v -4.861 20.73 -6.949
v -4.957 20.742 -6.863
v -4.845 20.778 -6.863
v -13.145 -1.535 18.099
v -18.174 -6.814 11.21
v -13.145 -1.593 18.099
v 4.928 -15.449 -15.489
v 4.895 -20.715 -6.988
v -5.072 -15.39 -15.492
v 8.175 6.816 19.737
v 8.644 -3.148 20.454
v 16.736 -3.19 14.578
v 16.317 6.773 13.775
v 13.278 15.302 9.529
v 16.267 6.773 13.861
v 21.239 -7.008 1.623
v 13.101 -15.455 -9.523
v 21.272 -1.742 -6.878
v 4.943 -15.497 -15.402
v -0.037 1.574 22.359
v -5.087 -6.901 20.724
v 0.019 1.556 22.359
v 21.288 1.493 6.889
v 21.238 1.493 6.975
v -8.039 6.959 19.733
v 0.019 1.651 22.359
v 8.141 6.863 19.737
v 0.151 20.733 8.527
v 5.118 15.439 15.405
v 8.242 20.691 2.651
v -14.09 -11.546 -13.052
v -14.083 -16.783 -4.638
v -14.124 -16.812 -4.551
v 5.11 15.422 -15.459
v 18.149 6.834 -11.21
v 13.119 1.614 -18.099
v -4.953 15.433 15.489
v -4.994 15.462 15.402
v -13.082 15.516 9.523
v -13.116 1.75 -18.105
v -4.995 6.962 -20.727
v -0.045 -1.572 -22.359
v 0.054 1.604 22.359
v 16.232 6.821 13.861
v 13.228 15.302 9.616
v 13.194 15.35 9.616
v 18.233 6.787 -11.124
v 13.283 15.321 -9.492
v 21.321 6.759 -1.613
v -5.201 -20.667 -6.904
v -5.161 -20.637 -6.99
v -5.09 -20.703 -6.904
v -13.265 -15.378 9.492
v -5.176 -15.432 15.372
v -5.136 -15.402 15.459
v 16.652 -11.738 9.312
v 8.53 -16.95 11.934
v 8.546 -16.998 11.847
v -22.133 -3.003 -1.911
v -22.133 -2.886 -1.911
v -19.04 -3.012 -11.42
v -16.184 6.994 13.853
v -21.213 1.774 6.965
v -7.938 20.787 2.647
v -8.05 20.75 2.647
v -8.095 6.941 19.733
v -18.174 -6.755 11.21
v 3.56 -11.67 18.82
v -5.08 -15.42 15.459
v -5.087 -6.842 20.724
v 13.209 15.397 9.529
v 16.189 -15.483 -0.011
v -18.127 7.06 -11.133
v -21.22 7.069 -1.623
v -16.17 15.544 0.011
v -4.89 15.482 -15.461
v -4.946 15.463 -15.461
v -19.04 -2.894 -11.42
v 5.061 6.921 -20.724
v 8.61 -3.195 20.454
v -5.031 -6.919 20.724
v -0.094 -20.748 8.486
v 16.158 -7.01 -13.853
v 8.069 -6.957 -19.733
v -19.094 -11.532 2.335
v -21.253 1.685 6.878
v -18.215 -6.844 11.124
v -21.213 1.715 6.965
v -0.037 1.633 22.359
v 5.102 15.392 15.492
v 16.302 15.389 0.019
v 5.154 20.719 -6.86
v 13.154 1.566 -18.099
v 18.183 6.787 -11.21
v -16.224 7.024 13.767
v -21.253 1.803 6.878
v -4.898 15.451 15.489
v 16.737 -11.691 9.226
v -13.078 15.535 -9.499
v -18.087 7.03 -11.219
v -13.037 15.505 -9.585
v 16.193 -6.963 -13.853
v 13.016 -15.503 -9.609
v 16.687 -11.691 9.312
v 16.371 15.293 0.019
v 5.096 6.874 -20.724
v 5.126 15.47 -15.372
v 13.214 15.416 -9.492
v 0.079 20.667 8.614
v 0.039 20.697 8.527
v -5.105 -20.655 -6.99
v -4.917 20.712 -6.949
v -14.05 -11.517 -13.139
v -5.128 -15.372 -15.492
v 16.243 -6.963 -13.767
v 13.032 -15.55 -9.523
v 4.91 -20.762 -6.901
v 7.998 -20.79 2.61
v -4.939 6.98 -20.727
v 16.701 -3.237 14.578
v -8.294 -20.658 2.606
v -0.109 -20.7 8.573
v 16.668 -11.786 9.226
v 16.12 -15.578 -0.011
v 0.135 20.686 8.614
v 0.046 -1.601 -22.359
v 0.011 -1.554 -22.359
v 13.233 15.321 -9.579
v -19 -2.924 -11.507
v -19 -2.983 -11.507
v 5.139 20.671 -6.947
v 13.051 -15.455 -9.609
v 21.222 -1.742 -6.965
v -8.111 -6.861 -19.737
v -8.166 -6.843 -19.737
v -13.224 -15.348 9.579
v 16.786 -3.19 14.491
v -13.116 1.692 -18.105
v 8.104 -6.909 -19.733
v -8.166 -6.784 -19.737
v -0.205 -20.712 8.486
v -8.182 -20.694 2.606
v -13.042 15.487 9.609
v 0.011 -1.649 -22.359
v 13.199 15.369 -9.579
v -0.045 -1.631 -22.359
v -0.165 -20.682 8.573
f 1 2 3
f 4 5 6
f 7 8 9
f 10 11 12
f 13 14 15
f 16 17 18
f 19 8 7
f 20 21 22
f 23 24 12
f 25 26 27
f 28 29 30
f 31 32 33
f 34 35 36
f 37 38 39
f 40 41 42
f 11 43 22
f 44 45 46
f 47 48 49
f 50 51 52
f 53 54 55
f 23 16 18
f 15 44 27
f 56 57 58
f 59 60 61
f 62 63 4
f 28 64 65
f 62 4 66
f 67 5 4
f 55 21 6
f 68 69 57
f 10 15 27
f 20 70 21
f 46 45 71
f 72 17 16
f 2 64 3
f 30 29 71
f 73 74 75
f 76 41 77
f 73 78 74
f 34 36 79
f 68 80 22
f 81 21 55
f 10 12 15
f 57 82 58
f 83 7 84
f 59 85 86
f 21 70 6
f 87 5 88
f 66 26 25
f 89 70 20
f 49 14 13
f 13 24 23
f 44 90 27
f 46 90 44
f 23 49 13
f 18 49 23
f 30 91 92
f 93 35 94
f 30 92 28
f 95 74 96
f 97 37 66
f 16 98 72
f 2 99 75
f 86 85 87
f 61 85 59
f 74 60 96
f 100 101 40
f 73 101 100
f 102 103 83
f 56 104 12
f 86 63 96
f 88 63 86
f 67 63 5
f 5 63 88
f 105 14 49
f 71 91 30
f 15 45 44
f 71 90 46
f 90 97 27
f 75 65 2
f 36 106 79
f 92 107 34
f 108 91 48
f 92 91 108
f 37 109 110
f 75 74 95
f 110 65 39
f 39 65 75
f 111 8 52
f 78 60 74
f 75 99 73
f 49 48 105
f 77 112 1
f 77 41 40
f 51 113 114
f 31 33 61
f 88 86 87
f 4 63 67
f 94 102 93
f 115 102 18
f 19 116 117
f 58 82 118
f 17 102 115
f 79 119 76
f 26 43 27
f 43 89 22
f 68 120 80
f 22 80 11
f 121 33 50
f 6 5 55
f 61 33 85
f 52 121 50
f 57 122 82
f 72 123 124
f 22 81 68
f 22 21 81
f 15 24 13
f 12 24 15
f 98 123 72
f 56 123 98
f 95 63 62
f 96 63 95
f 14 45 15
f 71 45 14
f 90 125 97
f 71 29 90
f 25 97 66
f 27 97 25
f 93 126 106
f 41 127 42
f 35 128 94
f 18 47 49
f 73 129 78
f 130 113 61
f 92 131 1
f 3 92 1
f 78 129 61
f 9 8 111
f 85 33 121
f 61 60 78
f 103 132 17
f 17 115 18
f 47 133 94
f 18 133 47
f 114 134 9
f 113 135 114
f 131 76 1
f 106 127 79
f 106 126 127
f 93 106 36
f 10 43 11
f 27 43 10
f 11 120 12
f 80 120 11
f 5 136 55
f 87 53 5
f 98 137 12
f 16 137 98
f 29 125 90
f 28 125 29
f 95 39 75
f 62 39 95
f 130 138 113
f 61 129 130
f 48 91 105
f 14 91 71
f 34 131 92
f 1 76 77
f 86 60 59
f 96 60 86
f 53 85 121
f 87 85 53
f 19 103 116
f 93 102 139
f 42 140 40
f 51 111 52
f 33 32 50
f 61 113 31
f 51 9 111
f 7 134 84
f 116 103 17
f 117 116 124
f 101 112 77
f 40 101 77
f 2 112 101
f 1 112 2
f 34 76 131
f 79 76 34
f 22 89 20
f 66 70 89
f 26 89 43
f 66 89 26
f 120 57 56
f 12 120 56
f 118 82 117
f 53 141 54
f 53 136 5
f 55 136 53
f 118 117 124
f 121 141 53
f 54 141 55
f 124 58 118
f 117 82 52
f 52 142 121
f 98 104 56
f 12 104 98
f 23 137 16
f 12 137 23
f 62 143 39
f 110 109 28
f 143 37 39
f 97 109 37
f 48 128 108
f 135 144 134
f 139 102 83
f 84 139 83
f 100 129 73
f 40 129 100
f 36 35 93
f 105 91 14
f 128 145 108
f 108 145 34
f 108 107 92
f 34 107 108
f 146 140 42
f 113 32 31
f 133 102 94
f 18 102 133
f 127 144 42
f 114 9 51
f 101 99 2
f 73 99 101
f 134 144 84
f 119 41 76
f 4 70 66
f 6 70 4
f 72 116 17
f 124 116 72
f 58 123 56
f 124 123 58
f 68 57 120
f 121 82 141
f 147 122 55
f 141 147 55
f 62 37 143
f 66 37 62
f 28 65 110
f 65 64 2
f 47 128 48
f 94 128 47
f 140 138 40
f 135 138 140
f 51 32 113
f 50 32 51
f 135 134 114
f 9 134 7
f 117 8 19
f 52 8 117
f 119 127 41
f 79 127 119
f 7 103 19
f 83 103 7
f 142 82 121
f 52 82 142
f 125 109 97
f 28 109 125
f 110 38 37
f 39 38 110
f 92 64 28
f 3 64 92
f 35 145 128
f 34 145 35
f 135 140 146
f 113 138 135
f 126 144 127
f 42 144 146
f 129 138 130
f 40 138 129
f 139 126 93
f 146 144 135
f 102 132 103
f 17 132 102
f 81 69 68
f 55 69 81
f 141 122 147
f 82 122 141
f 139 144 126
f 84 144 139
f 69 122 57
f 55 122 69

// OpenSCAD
// Auto-generated OpenSCAD file

    inner_points = 10*[[-1.3104395664096138, -0.15639165556592607, 1.8012204607133442], [2.1171837602471193, -0.17420359653421366, -0.6878261389542333], [-1.813366541926435, -0.6784734505750465, 1.1123844449464875], [1.6142567847302982, -0.696285391543334, -1.3766621547210902], [-1.614310140962071, 0.6964934004258805, 1.3766621547210902], [1.8133131856946623, 0.678681459457593, -1.1123844449464875], [-2.1172371164788926, 0.17441160541676018, 0.6878261389542333], [1.310386210177841, 0.1565996644484726, -1.8012204607133442], [0.8594233074163656, -0.31477478394555153, 2.036729007131888], [1.668575413771322, -0.318979612825281, 1.4491448104456341], [-0.01245801396871189, -2.065274015710926, 0.848603012757371], [0.7966940923862442, -2.069478844590655, 0.2610188160711172], [0.01197252401493869, 2.0637974417993705, 0.8526977150509645], [0.8211246303698948, 2.059592612919641, 0.26511351836471064], [-1.2996744241348386, 1.5476050584640813, -0.9498548318379741], [-0.4905223177798824, 1.5434002295843519, -1.5374390285242279], [0.8125489839866779, 0.6815508776221069, 1.9650493454085152], [1.621701090341634, 0.6773460487423775, 1.3774651487222616], [-1.901334281126665, -1.1473180605990139, 0.23349514104554972], [-0.5087317656659937, -1.534227924731367, -1.5404910394162612], [0.5086784094342206, 1.5344359336139135, 1.5404910394162612], [1.3178305157891768, 1.5302311047341841, 0.9529068427300073], [-2.2052048556791224, -0.2944330046072073, -0.19106316494670447], [-0.8126023402184509, -0.6813428687395604, -1.9650493454085152], [-0.8054566316651747, 0.6911245534638584, 1.9646478484079297], [2.1220831911956264, 0.6759113396601206, -0.1612517464552398], [-1.4009521802726725, -1.1487527696812705, -1.3052217541319513], [0.8054032754334016, -0.6909165445813119, -1.9646478484079297], [-0.5095135029129342, -1.5372753636343293, 1.5371908897314848], [1.6088742135929104, -1.5482837485583376, -0.001124508445430994], [-1.6089275698246832, 1.548491757440884, 0.001124508445430994], [0.5094601466811611, 1.5374833725168757, -1.5371908897314848], [0.8514958616161489, -1.6902896450519322, 1.184713742463189], [-0.5120583775757634, -2.0607918677257064, -0.6903620212128735], [-0.4876278395921126, 2.0682795897845896, -0.6862673189192798], [-1.3076018699350553, 0.17209019735770018, -1.801870096506673], [-0.5046140719644278, -0.687160427439995, 2.063765282230478], [2.1138571483373494, -0.7007675395285534, 0.16230287924915437], [-1.3183670122098305, -1.531906516672307, 0.9492051960446453], [1.3001042080919467, -1.5455136287608653, -0.9522572069366785], [-1.3001575643237195, 1.5457216376434117, 0.9522572069366785], [1.3183136559780577, 1.5321145255548534, -0.9492051960446453], [-2.1139105045691227, 0.7009755484110999, -0.16230287924915437], [0.5045607157326547, 0.6873684363225414, -2.063765282230478], [0.3544403726719265, -1.1622909929753358, 1.873301619437303], [1.6636759828228154, -1.1690945490196152, 0.922570417946641], [-0.8213115232656084, -2.059905168748904, 0.2606173190705316], [0.4879240868852805, -2.066708724793183, -0.6901138824201304], [-0.7968809852819578, 2.0691662887613926, 0.2647120213641251], [0.512354624868931, 2.0623627327171135, -0.6860191801265367], [-1.8046573588792778, 0.7000888494342967, -1.1132822195325593], [-0.4954217487283891, 0.6932852933900178, -2.0640134210232213], [0.00036886278001156155, 0.1603557815897894, 2.2271926699250635], [2.118756579285856, 0.14934739666578092, 0.6888772717481477], [-1.4042787921824422, -1.6753167126756103, -0.455092735928564], [0.4912506987950502, -1.5401447817988432, -1.540242900623518], [-0.4913040550268231, 1.5403527906813896, 1.540242900623518], [1.6270836614790216, 1.5293444057573813, 0.0019275024466022805], [-1.8959517099892769, -0.29531970358401, -1.1420425052301095], [-0.0004222190117845245, -0.16014777270724287, -2.2271926699250635]];

    outer_points = 10*[[-1.608902406578448, 1.5483825910198363, 0.003517873301490282], [1.805289329346114, -0.7010179363837667, 1.1115629841430903], [-2.1139804776773468, 0.7010179363837667, -0.16040065575642376], [1.3002112582472154, -1.5483825910198363, 0.9476444550851761], [-1.3002112582472154, 1.5483825910198363, -0.9476444550851761], [2.1139804776773468, -0.7010179363837667, 0.16040065575642376], [-1.805289329346114, 0.7010179363837667, -1.1115629841430903], [1.608902406578448, -1.5483825910198363, -0.003517873301490282], [0.010456741573218409, 1.681299862030699, 1.469418050791201], [0.8164380794694259, 1.1502884289395703, 1.7309920190861077], [-1.3093480486893396, -0.15817661077247036, 1.801847891665038], [-0.503366710793132, -0.6891880438635992, 2.063421859959945], [0.8713514032813371, 1.681299862030699, -1.183235176723117], [1.6773327411775445, 1.1502884289395703, -0.9216612084282103], [-0.0017113603057666849, -0.15817661077247036, -2.227340389017859], [0.8042699775904408, -0.6891880438635992, -1.9657664207229522], [0.5124362784459833, 2.060252855930076, 0.6919791959764293], [1.3184176163421908, 1.5292414228389473, 0.9535531642713361], [-2.205290226019561, -0.2943635836592561, -0.19003441040417474], [-0.821127426777216, -2.060252855930076, 0.25918313241023716], [0.821127426777216, 2.060252855930076, -0.25918313241023716], [1.6271087646734235, 1.5292414228389473, 0.0023908358846695954], [-1.8965990776883281, -0.2943635836592561, -1.1411967387908413], [-0.5124362784459833, -2.060252855930076, -0.6919791959764293], [-0.7968781588487197, 2.069823440020521, -0.2586196137018268], [2.1191897159578725, 0.14860602668202572, 0.6877638941613333], [-1.4045181264038793, -1.6749989798161773, -0.45582368051417754], [0.7968781588487197, -2.069823440020521, 0.2586196137018268], [-1.6134708017995103, 0.695102990123683, 1.3782640466765974], [0.49661573511087465, -0.695102990123683, 2.063073586244851], [-0.49661573511087465, 0.695102990123683, -2.063073586244851], [1.6134708017995103, -0.695102990123683, -1.3782640466765974], [-0.49744475304633917, 0.3065794121338616, 2.155139382782959], [-1.3177767732827272, -1.532897060669308, 0.9485562475086804], [0.8629226786879495, 0.3065794121338616, -2.0365268208794745], [-0.5096128549253243, -1.532897060669308, -1.5416190570261012], [-1.2995704151877518, 1.5447269531894756, 0.9544649566948404], [1.308639982840603, -0.17366214112299871, 1.8009360992415337], [-2.116803901198006, 0.17366214112299871, 0.689239205293248], [0.4914064968303489, -1.5447269531894756, 1.5357103478399412], [-0.4914064968303489, 1.5447269531894756, -1.5357103478399412], [2.116803901198006, -0.17366214112299871, -0.689239205293248], [-1.308639982840603, 0.17366214112299871, -1.8009360992415337], [1.2995704151877518, -1.5447269531894756, -0.9544649566948404], [-0.80156750615651, 1.1598590130300148, 1.731555537794518], [0.5025376928576674, 0.30066446587377776, 2.1547911090678644], [-1.812681148087835, -0.6796174597731546, 1.1128230502816887], [-0.5085759490736578, -1.5388120069293918, 1.5360586215550354], [0.3680183038828415, 1.1598590130300148, -1.8722600181064664], [1.6721235028970187, 0.30066446587377776, -1.4490244468331197], [-0.8137356080354949, -0.6796174597731546, -1.9652029020145418], [0.4903695909786824, -1.5388120069293918, -1.5419673307411952], [-0.4875461674580234, 2.0661678021901597, 0.6923274696915234], [1.6225403694523615, 0.6759618219427938, 1.3771370092597768], [-1.9011674729093904, -1.1476431845554094, 0.2335494345842659], [-0.01192660256814665, -2.0661678021901597, 0.8466855064565919], [0.01192660256814665, 2.0661678021901597, -0.8466855064565919], [2.1220131394785318, 0.6759618219427938, -0.1618759668883385], [-1.40169470288322, -1.1476431845554094, -1.3054635415638494], [0.4875461674580234, -2.0661678021901597, -0.6923274696915234]];

    // Convex hull for inner set (I)
    module inner_hull() {
        hull() {
            for (p = inner_points) {
                translate(p) sphere(r=0.1);
            }
        }
    }

    // Convex hull for outer set (O) minus inner hull (O \ I)
    module outer_minus_inner() {
        difference() {
            hull() {
                for (p = outer_points) {
                    translate(p) sphere(r=0.1);
                }
            }
            inner_hull(); // Subtract inner hull
        }
    }

    // Convex hull for outer set (O) minus all translated inner hulls
    module outer_minus_AllTranslationInner() {
        difference() {
            hull() {
                for (p = outer_points) {
                    translate(p) sphere(r=0.1);
                }
            }
            hull() {
                translate([0,0,50]) inner_hull();
                translate([0,0,-50]) inner_hull();
            }; // Subtract translated inner hulls
        }
    }

    // Difference between outer_minus_inner and outer_minus_AllTranslationInner
    module outer_minus_inner_diff() {
        difference() {
            // Outer minus inner
            difference() {
                hull() {
                    for (p = outer_points) {
                        translate(p) sphere(r=0.1);
                    }
                }
                inner_hull();
            }

            // Subtract Outer minus AllTranslationInner
            difference() {
                hull() {
                    for (p = outer_points) {
                        translate(p) sphere(r=0.1);
                    }
                }
                hull() {
                    translate([0,0,50]) inner_hull();
                    translate([0,0,-50]) inner_hull();
                };
            }
        }
    }

    // Rendering all with colors applied
    color([1, 0, 0, 0.5]) inner_hull(); // Transparent red
    
